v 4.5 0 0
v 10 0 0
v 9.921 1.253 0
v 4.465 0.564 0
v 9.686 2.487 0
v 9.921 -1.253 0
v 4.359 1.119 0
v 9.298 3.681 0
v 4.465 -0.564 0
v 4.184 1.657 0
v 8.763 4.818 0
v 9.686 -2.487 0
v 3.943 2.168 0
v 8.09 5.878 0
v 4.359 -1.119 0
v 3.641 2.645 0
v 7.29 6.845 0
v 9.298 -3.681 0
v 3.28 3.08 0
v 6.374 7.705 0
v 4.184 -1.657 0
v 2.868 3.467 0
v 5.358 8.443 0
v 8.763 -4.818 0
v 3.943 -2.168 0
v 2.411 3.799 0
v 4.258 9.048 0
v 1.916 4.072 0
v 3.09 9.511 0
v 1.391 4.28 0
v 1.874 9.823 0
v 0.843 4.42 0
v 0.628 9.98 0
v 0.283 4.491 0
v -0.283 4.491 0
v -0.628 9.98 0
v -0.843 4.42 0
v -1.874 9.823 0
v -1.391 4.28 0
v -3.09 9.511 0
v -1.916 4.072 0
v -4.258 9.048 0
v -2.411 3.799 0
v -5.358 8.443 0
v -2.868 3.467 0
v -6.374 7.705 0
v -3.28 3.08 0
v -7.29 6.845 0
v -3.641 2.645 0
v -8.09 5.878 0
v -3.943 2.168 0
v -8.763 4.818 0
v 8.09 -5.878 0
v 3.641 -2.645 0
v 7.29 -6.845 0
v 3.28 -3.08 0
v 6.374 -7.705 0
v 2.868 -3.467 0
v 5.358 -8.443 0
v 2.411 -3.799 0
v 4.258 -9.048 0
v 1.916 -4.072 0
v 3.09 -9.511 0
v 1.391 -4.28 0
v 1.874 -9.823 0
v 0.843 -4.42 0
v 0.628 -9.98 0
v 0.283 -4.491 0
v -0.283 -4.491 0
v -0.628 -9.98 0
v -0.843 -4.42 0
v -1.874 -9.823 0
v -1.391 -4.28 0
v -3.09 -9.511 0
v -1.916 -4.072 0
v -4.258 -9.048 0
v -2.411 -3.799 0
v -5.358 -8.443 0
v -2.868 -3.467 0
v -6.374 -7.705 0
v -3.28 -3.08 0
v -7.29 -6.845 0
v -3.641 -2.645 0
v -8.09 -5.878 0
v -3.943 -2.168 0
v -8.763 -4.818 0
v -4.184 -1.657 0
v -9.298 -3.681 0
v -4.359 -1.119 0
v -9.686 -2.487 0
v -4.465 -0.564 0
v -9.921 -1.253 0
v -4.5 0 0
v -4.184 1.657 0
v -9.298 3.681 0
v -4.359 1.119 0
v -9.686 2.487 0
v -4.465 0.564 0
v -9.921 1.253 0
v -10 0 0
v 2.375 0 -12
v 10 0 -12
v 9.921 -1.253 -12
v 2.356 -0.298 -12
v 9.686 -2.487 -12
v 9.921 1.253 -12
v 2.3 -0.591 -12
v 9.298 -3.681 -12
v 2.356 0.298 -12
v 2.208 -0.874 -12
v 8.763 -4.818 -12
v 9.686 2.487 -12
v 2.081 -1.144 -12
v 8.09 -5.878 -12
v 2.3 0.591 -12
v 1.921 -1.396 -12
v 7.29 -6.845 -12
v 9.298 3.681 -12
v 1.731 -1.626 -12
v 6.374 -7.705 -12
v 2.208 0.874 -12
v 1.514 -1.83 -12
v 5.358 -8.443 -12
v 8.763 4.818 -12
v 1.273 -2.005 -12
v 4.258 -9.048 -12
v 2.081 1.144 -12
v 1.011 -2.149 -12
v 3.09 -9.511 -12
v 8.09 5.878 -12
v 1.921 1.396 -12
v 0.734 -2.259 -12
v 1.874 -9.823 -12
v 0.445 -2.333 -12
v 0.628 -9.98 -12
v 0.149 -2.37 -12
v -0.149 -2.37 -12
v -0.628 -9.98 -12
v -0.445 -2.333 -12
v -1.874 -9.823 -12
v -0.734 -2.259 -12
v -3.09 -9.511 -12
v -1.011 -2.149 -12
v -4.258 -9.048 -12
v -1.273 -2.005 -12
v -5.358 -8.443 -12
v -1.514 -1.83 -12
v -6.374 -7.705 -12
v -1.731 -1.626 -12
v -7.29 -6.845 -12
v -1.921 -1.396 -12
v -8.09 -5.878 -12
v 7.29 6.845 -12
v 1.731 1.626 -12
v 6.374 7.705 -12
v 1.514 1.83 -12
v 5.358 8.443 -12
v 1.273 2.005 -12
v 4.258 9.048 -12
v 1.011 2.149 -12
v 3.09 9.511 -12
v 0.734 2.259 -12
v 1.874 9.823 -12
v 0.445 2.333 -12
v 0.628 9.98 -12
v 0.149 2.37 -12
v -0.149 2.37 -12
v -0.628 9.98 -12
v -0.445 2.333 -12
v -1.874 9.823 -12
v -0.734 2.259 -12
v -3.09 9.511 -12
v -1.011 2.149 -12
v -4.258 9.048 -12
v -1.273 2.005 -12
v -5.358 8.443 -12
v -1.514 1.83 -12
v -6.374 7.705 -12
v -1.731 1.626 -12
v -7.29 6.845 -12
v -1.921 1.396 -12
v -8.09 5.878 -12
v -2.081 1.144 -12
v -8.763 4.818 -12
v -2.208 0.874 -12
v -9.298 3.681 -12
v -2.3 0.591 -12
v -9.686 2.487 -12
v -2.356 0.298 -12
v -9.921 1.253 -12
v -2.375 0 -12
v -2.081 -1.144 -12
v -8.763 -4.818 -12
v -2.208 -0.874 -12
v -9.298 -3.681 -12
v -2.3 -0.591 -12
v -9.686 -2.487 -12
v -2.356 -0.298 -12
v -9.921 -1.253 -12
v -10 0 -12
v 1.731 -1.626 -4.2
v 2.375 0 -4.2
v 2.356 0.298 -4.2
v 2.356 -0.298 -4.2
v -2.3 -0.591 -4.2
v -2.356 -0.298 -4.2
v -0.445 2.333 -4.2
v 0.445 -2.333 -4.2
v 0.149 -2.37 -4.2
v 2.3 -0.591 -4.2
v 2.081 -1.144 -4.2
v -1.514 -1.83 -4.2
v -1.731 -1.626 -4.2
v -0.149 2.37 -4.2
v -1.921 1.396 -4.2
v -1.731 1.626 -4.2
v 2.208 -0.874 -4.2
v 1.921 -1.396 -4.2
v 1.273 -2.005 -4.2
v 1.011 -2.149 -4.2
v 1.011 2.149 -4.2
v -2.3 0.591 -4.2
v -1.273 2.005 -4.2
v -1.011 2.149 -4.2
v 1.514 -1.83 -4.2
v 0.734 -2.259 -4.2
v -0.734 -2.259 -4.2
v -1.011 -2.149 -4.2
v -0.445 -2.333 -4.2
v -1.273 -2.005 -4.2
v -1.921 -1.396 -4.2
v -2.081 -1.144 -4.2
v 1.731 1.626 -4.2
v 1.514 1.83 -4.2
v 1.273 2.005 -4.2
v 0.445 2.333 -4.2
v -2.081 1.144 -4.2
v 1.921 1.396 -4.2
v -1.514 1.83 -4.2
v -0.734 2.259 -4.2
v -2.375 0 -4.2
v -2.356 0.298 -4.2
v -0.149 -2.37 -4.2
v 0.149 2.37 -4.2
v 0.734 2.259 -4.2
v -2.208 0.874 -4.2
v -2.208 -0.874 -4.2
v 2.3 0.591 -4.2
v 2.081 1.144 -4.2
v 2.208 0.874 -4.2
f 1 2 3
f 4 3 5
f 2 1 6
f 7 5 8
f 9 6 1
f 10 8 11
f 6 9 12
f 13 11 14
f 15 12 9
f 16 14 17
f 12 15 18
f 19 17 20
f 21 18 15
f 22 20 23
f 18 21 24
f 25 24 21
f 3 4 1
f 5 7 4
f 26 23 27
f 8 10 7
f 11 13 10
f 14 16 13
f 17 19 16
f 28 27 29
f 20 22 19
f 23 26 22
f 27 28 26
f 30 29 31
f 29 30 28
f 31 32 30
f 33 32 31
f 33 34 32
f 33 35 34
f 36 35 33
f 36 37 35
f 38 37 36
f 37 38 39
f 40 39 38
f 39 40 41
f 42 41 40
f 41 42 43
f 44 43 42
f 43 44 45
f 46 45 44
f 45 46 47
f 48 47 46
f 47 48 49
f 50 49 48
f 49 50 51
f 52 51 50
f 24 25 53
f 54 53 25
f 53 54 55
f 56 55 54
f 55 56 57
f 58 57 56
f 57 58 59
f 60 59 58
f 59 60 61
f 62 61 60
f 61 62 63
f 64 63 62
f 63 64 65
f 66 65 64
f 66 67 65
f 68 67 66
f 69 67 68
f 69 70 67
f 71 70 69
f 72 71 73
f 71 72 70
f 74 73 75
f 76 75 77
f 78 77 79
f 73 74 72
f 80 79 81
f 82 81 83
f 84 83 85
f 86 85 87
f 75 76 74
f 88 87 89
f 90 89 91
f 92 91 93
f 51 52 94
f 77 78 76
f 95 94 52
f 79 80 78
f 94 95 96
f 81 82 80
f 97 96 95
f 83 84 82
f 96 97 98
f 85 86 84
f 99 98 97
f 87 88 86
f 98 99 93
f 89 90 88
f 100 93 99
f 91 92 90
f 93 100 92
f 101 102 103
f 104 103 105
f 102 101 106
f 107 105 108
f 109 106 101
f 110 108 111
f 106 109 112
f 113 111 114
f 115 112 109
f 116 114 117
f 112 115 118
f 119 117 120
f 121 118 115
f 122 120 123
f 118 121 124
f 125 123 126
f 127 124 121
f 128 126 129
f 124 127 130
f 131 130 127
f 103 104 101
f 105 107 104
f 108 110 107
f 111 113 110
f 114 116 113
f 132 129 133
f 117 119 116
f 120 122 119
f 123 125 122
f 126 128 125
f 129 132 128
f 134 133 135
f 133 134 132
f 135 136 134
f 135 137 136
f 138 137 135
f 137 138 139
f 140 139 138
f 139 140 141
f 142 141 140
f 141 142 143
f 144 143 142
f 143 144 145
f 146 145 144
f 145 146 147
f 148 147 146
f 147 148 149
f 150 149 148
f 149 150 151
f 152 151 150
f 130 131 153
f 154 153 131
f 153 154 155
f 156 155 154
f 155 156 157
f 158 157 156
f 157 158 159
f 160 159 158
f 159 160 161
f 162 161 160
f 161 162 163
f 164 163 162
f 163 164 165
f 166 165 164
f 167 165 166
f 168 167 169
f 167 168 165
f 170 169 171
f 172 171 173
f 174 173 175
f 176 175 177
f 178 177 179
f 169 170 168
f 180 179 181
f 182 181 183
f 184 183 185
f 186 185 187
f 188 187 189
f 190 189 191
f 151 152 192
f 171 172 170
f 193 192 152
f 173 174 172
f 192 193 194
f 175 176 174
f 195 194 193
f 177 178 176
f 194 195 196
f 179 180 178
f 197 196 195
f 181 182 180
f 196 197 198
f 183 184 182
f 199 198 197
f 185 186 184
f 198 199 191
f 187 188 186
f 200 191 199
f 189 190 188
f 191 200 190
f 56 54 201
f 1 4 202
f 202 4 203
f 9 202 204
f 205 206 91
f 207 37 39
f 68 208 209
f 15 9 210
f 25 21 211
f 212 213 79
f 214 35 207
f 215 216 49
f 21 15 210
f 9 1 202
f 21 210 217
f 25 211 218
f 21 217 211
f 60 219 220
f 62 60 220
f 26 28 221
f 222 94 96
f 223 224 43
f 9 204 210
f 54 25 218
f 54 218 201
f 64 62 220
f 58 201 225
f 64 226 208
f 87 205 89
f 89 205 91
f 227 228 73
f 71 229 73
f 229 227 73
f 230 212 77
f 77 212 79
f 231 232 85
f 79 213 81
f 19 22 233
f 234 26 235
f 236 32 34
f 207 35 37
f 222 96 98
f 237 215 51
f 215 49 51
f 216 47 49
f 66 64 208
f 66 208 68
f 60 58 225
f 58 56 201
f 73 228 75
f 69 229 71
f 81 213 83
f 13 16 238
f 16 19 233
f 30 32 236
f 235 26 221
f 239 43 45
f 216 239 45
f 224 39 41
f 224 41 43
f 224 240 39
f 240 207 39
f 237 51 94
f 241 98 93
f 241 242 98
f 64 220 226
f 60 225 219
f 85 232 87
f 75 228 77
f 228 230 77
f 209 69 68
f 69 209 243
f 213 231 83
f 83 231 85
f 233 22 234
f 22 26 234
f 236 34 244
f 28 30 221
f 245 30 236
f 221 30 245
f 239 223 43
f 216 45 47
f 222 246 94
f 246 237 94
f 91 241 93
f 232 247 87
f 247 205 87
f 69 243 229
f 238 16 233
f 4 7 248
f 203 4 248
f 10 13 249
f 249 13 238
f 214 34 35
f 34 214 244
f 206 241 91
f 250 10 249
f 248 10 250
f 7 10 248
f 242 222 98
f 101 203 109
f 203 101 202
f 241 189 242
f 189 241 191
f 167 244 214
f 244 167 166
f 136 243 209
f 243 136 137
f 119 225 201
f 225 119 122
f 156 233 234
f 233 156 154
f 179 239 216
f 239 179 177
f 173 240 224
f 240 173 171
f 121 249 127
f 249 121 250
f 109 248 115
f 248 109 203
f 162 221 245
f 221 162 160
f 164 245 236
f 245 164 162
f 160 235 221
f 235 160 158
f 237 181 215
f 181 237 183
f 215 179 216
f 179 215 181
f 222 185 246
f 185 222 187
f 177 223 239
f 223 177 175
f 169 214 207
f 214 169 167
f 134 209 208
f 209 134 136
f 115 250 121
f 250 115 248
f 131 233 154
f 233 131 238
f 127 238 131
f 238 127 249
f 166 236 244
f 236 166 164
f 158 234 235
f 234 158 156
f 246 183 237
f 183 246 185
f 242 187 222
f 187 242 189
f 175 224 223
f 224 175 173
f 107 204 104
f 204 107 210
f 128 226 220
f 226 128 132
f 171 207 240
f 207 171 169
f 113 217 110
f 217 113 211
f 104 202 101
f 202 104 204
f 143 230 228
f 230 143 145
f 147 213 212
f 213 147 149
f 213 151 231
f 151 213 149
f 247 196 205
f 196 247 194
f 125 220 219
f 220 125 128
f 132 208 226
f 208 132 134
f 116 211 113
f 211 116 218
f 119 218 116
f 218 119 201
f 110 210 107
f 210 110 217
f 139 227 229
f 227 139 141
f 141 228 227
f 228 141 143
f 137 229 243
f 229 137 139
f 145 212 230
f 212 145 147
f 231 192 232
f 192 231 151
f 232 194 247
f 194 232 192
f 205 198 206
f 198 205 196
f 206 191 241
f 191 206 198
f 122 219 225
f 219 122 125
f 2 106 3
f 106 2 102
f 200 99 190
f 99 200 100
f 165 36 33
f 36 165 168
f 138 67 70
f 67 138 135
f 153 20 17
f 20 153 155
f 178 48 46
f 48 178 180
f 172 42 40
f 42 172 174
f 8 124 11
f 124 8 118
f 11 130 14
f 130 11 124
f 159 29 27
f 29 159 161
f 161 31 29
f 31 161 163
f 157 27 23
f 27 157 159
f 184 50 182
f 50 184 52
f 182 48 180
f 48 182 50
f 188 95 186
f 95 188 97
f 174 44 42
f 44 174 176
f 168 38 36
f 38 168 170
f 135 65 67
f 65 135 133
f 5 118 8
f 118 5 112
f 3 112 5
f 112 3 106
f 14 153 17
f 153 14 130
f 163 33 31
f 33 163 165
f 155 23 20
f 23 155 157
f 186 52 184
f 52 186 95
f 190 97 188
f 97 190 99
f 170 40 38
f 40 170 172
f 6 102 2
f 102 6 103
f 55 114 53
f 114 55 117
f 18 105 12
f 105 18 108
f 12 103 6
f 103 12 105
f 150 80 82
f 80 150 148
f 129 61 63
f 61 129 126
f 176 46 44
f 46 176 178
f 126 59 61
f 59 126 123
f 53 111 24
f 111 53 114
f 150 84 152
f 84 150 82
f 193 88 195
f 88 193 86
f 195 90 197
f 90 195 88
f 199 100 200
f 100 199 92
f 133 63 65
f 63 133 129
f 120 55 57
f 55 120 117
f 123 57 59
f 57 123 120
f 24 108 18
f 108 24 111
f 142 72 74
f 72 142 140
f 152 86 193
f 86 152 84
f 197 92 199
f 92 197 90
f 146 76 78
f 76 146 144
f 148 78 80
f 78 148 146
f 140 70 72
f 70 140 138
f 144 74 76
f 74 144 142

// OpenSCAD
$fn = 50;


difference() {
	union() {
		translate(v = [0, 0, -12.0000000000]) {
			cylinder(h = 12, r = 10.0000000000);
		}
	}
	union() {
		translate(v = [0, 0, 0]) {
			rotate(a = [0, 0, 0]) {
				difference() {
					union() {
						#translate(v = [0, 0, -12.0000000000]) {
							cylinder(h = 12, r = 2.2500000000);
						}
						#translate(v = [0, 0, -4.2000000000]) {
							cylinder(h = 4.2000000000, r1 = 2.3750000000, r2 = 4.5000000000);
						}
						#translate(v = [0, 0, -12.0000000000]) {
							cylinder(h = 12, r = 2.3750000000);
						}
						#translate(v = [0, 0, -12.0000000000]) {
							cylinder(h = 12, r = 2.2500000000);
						}
					}
					union();
				}
			}
		}
	}
}
